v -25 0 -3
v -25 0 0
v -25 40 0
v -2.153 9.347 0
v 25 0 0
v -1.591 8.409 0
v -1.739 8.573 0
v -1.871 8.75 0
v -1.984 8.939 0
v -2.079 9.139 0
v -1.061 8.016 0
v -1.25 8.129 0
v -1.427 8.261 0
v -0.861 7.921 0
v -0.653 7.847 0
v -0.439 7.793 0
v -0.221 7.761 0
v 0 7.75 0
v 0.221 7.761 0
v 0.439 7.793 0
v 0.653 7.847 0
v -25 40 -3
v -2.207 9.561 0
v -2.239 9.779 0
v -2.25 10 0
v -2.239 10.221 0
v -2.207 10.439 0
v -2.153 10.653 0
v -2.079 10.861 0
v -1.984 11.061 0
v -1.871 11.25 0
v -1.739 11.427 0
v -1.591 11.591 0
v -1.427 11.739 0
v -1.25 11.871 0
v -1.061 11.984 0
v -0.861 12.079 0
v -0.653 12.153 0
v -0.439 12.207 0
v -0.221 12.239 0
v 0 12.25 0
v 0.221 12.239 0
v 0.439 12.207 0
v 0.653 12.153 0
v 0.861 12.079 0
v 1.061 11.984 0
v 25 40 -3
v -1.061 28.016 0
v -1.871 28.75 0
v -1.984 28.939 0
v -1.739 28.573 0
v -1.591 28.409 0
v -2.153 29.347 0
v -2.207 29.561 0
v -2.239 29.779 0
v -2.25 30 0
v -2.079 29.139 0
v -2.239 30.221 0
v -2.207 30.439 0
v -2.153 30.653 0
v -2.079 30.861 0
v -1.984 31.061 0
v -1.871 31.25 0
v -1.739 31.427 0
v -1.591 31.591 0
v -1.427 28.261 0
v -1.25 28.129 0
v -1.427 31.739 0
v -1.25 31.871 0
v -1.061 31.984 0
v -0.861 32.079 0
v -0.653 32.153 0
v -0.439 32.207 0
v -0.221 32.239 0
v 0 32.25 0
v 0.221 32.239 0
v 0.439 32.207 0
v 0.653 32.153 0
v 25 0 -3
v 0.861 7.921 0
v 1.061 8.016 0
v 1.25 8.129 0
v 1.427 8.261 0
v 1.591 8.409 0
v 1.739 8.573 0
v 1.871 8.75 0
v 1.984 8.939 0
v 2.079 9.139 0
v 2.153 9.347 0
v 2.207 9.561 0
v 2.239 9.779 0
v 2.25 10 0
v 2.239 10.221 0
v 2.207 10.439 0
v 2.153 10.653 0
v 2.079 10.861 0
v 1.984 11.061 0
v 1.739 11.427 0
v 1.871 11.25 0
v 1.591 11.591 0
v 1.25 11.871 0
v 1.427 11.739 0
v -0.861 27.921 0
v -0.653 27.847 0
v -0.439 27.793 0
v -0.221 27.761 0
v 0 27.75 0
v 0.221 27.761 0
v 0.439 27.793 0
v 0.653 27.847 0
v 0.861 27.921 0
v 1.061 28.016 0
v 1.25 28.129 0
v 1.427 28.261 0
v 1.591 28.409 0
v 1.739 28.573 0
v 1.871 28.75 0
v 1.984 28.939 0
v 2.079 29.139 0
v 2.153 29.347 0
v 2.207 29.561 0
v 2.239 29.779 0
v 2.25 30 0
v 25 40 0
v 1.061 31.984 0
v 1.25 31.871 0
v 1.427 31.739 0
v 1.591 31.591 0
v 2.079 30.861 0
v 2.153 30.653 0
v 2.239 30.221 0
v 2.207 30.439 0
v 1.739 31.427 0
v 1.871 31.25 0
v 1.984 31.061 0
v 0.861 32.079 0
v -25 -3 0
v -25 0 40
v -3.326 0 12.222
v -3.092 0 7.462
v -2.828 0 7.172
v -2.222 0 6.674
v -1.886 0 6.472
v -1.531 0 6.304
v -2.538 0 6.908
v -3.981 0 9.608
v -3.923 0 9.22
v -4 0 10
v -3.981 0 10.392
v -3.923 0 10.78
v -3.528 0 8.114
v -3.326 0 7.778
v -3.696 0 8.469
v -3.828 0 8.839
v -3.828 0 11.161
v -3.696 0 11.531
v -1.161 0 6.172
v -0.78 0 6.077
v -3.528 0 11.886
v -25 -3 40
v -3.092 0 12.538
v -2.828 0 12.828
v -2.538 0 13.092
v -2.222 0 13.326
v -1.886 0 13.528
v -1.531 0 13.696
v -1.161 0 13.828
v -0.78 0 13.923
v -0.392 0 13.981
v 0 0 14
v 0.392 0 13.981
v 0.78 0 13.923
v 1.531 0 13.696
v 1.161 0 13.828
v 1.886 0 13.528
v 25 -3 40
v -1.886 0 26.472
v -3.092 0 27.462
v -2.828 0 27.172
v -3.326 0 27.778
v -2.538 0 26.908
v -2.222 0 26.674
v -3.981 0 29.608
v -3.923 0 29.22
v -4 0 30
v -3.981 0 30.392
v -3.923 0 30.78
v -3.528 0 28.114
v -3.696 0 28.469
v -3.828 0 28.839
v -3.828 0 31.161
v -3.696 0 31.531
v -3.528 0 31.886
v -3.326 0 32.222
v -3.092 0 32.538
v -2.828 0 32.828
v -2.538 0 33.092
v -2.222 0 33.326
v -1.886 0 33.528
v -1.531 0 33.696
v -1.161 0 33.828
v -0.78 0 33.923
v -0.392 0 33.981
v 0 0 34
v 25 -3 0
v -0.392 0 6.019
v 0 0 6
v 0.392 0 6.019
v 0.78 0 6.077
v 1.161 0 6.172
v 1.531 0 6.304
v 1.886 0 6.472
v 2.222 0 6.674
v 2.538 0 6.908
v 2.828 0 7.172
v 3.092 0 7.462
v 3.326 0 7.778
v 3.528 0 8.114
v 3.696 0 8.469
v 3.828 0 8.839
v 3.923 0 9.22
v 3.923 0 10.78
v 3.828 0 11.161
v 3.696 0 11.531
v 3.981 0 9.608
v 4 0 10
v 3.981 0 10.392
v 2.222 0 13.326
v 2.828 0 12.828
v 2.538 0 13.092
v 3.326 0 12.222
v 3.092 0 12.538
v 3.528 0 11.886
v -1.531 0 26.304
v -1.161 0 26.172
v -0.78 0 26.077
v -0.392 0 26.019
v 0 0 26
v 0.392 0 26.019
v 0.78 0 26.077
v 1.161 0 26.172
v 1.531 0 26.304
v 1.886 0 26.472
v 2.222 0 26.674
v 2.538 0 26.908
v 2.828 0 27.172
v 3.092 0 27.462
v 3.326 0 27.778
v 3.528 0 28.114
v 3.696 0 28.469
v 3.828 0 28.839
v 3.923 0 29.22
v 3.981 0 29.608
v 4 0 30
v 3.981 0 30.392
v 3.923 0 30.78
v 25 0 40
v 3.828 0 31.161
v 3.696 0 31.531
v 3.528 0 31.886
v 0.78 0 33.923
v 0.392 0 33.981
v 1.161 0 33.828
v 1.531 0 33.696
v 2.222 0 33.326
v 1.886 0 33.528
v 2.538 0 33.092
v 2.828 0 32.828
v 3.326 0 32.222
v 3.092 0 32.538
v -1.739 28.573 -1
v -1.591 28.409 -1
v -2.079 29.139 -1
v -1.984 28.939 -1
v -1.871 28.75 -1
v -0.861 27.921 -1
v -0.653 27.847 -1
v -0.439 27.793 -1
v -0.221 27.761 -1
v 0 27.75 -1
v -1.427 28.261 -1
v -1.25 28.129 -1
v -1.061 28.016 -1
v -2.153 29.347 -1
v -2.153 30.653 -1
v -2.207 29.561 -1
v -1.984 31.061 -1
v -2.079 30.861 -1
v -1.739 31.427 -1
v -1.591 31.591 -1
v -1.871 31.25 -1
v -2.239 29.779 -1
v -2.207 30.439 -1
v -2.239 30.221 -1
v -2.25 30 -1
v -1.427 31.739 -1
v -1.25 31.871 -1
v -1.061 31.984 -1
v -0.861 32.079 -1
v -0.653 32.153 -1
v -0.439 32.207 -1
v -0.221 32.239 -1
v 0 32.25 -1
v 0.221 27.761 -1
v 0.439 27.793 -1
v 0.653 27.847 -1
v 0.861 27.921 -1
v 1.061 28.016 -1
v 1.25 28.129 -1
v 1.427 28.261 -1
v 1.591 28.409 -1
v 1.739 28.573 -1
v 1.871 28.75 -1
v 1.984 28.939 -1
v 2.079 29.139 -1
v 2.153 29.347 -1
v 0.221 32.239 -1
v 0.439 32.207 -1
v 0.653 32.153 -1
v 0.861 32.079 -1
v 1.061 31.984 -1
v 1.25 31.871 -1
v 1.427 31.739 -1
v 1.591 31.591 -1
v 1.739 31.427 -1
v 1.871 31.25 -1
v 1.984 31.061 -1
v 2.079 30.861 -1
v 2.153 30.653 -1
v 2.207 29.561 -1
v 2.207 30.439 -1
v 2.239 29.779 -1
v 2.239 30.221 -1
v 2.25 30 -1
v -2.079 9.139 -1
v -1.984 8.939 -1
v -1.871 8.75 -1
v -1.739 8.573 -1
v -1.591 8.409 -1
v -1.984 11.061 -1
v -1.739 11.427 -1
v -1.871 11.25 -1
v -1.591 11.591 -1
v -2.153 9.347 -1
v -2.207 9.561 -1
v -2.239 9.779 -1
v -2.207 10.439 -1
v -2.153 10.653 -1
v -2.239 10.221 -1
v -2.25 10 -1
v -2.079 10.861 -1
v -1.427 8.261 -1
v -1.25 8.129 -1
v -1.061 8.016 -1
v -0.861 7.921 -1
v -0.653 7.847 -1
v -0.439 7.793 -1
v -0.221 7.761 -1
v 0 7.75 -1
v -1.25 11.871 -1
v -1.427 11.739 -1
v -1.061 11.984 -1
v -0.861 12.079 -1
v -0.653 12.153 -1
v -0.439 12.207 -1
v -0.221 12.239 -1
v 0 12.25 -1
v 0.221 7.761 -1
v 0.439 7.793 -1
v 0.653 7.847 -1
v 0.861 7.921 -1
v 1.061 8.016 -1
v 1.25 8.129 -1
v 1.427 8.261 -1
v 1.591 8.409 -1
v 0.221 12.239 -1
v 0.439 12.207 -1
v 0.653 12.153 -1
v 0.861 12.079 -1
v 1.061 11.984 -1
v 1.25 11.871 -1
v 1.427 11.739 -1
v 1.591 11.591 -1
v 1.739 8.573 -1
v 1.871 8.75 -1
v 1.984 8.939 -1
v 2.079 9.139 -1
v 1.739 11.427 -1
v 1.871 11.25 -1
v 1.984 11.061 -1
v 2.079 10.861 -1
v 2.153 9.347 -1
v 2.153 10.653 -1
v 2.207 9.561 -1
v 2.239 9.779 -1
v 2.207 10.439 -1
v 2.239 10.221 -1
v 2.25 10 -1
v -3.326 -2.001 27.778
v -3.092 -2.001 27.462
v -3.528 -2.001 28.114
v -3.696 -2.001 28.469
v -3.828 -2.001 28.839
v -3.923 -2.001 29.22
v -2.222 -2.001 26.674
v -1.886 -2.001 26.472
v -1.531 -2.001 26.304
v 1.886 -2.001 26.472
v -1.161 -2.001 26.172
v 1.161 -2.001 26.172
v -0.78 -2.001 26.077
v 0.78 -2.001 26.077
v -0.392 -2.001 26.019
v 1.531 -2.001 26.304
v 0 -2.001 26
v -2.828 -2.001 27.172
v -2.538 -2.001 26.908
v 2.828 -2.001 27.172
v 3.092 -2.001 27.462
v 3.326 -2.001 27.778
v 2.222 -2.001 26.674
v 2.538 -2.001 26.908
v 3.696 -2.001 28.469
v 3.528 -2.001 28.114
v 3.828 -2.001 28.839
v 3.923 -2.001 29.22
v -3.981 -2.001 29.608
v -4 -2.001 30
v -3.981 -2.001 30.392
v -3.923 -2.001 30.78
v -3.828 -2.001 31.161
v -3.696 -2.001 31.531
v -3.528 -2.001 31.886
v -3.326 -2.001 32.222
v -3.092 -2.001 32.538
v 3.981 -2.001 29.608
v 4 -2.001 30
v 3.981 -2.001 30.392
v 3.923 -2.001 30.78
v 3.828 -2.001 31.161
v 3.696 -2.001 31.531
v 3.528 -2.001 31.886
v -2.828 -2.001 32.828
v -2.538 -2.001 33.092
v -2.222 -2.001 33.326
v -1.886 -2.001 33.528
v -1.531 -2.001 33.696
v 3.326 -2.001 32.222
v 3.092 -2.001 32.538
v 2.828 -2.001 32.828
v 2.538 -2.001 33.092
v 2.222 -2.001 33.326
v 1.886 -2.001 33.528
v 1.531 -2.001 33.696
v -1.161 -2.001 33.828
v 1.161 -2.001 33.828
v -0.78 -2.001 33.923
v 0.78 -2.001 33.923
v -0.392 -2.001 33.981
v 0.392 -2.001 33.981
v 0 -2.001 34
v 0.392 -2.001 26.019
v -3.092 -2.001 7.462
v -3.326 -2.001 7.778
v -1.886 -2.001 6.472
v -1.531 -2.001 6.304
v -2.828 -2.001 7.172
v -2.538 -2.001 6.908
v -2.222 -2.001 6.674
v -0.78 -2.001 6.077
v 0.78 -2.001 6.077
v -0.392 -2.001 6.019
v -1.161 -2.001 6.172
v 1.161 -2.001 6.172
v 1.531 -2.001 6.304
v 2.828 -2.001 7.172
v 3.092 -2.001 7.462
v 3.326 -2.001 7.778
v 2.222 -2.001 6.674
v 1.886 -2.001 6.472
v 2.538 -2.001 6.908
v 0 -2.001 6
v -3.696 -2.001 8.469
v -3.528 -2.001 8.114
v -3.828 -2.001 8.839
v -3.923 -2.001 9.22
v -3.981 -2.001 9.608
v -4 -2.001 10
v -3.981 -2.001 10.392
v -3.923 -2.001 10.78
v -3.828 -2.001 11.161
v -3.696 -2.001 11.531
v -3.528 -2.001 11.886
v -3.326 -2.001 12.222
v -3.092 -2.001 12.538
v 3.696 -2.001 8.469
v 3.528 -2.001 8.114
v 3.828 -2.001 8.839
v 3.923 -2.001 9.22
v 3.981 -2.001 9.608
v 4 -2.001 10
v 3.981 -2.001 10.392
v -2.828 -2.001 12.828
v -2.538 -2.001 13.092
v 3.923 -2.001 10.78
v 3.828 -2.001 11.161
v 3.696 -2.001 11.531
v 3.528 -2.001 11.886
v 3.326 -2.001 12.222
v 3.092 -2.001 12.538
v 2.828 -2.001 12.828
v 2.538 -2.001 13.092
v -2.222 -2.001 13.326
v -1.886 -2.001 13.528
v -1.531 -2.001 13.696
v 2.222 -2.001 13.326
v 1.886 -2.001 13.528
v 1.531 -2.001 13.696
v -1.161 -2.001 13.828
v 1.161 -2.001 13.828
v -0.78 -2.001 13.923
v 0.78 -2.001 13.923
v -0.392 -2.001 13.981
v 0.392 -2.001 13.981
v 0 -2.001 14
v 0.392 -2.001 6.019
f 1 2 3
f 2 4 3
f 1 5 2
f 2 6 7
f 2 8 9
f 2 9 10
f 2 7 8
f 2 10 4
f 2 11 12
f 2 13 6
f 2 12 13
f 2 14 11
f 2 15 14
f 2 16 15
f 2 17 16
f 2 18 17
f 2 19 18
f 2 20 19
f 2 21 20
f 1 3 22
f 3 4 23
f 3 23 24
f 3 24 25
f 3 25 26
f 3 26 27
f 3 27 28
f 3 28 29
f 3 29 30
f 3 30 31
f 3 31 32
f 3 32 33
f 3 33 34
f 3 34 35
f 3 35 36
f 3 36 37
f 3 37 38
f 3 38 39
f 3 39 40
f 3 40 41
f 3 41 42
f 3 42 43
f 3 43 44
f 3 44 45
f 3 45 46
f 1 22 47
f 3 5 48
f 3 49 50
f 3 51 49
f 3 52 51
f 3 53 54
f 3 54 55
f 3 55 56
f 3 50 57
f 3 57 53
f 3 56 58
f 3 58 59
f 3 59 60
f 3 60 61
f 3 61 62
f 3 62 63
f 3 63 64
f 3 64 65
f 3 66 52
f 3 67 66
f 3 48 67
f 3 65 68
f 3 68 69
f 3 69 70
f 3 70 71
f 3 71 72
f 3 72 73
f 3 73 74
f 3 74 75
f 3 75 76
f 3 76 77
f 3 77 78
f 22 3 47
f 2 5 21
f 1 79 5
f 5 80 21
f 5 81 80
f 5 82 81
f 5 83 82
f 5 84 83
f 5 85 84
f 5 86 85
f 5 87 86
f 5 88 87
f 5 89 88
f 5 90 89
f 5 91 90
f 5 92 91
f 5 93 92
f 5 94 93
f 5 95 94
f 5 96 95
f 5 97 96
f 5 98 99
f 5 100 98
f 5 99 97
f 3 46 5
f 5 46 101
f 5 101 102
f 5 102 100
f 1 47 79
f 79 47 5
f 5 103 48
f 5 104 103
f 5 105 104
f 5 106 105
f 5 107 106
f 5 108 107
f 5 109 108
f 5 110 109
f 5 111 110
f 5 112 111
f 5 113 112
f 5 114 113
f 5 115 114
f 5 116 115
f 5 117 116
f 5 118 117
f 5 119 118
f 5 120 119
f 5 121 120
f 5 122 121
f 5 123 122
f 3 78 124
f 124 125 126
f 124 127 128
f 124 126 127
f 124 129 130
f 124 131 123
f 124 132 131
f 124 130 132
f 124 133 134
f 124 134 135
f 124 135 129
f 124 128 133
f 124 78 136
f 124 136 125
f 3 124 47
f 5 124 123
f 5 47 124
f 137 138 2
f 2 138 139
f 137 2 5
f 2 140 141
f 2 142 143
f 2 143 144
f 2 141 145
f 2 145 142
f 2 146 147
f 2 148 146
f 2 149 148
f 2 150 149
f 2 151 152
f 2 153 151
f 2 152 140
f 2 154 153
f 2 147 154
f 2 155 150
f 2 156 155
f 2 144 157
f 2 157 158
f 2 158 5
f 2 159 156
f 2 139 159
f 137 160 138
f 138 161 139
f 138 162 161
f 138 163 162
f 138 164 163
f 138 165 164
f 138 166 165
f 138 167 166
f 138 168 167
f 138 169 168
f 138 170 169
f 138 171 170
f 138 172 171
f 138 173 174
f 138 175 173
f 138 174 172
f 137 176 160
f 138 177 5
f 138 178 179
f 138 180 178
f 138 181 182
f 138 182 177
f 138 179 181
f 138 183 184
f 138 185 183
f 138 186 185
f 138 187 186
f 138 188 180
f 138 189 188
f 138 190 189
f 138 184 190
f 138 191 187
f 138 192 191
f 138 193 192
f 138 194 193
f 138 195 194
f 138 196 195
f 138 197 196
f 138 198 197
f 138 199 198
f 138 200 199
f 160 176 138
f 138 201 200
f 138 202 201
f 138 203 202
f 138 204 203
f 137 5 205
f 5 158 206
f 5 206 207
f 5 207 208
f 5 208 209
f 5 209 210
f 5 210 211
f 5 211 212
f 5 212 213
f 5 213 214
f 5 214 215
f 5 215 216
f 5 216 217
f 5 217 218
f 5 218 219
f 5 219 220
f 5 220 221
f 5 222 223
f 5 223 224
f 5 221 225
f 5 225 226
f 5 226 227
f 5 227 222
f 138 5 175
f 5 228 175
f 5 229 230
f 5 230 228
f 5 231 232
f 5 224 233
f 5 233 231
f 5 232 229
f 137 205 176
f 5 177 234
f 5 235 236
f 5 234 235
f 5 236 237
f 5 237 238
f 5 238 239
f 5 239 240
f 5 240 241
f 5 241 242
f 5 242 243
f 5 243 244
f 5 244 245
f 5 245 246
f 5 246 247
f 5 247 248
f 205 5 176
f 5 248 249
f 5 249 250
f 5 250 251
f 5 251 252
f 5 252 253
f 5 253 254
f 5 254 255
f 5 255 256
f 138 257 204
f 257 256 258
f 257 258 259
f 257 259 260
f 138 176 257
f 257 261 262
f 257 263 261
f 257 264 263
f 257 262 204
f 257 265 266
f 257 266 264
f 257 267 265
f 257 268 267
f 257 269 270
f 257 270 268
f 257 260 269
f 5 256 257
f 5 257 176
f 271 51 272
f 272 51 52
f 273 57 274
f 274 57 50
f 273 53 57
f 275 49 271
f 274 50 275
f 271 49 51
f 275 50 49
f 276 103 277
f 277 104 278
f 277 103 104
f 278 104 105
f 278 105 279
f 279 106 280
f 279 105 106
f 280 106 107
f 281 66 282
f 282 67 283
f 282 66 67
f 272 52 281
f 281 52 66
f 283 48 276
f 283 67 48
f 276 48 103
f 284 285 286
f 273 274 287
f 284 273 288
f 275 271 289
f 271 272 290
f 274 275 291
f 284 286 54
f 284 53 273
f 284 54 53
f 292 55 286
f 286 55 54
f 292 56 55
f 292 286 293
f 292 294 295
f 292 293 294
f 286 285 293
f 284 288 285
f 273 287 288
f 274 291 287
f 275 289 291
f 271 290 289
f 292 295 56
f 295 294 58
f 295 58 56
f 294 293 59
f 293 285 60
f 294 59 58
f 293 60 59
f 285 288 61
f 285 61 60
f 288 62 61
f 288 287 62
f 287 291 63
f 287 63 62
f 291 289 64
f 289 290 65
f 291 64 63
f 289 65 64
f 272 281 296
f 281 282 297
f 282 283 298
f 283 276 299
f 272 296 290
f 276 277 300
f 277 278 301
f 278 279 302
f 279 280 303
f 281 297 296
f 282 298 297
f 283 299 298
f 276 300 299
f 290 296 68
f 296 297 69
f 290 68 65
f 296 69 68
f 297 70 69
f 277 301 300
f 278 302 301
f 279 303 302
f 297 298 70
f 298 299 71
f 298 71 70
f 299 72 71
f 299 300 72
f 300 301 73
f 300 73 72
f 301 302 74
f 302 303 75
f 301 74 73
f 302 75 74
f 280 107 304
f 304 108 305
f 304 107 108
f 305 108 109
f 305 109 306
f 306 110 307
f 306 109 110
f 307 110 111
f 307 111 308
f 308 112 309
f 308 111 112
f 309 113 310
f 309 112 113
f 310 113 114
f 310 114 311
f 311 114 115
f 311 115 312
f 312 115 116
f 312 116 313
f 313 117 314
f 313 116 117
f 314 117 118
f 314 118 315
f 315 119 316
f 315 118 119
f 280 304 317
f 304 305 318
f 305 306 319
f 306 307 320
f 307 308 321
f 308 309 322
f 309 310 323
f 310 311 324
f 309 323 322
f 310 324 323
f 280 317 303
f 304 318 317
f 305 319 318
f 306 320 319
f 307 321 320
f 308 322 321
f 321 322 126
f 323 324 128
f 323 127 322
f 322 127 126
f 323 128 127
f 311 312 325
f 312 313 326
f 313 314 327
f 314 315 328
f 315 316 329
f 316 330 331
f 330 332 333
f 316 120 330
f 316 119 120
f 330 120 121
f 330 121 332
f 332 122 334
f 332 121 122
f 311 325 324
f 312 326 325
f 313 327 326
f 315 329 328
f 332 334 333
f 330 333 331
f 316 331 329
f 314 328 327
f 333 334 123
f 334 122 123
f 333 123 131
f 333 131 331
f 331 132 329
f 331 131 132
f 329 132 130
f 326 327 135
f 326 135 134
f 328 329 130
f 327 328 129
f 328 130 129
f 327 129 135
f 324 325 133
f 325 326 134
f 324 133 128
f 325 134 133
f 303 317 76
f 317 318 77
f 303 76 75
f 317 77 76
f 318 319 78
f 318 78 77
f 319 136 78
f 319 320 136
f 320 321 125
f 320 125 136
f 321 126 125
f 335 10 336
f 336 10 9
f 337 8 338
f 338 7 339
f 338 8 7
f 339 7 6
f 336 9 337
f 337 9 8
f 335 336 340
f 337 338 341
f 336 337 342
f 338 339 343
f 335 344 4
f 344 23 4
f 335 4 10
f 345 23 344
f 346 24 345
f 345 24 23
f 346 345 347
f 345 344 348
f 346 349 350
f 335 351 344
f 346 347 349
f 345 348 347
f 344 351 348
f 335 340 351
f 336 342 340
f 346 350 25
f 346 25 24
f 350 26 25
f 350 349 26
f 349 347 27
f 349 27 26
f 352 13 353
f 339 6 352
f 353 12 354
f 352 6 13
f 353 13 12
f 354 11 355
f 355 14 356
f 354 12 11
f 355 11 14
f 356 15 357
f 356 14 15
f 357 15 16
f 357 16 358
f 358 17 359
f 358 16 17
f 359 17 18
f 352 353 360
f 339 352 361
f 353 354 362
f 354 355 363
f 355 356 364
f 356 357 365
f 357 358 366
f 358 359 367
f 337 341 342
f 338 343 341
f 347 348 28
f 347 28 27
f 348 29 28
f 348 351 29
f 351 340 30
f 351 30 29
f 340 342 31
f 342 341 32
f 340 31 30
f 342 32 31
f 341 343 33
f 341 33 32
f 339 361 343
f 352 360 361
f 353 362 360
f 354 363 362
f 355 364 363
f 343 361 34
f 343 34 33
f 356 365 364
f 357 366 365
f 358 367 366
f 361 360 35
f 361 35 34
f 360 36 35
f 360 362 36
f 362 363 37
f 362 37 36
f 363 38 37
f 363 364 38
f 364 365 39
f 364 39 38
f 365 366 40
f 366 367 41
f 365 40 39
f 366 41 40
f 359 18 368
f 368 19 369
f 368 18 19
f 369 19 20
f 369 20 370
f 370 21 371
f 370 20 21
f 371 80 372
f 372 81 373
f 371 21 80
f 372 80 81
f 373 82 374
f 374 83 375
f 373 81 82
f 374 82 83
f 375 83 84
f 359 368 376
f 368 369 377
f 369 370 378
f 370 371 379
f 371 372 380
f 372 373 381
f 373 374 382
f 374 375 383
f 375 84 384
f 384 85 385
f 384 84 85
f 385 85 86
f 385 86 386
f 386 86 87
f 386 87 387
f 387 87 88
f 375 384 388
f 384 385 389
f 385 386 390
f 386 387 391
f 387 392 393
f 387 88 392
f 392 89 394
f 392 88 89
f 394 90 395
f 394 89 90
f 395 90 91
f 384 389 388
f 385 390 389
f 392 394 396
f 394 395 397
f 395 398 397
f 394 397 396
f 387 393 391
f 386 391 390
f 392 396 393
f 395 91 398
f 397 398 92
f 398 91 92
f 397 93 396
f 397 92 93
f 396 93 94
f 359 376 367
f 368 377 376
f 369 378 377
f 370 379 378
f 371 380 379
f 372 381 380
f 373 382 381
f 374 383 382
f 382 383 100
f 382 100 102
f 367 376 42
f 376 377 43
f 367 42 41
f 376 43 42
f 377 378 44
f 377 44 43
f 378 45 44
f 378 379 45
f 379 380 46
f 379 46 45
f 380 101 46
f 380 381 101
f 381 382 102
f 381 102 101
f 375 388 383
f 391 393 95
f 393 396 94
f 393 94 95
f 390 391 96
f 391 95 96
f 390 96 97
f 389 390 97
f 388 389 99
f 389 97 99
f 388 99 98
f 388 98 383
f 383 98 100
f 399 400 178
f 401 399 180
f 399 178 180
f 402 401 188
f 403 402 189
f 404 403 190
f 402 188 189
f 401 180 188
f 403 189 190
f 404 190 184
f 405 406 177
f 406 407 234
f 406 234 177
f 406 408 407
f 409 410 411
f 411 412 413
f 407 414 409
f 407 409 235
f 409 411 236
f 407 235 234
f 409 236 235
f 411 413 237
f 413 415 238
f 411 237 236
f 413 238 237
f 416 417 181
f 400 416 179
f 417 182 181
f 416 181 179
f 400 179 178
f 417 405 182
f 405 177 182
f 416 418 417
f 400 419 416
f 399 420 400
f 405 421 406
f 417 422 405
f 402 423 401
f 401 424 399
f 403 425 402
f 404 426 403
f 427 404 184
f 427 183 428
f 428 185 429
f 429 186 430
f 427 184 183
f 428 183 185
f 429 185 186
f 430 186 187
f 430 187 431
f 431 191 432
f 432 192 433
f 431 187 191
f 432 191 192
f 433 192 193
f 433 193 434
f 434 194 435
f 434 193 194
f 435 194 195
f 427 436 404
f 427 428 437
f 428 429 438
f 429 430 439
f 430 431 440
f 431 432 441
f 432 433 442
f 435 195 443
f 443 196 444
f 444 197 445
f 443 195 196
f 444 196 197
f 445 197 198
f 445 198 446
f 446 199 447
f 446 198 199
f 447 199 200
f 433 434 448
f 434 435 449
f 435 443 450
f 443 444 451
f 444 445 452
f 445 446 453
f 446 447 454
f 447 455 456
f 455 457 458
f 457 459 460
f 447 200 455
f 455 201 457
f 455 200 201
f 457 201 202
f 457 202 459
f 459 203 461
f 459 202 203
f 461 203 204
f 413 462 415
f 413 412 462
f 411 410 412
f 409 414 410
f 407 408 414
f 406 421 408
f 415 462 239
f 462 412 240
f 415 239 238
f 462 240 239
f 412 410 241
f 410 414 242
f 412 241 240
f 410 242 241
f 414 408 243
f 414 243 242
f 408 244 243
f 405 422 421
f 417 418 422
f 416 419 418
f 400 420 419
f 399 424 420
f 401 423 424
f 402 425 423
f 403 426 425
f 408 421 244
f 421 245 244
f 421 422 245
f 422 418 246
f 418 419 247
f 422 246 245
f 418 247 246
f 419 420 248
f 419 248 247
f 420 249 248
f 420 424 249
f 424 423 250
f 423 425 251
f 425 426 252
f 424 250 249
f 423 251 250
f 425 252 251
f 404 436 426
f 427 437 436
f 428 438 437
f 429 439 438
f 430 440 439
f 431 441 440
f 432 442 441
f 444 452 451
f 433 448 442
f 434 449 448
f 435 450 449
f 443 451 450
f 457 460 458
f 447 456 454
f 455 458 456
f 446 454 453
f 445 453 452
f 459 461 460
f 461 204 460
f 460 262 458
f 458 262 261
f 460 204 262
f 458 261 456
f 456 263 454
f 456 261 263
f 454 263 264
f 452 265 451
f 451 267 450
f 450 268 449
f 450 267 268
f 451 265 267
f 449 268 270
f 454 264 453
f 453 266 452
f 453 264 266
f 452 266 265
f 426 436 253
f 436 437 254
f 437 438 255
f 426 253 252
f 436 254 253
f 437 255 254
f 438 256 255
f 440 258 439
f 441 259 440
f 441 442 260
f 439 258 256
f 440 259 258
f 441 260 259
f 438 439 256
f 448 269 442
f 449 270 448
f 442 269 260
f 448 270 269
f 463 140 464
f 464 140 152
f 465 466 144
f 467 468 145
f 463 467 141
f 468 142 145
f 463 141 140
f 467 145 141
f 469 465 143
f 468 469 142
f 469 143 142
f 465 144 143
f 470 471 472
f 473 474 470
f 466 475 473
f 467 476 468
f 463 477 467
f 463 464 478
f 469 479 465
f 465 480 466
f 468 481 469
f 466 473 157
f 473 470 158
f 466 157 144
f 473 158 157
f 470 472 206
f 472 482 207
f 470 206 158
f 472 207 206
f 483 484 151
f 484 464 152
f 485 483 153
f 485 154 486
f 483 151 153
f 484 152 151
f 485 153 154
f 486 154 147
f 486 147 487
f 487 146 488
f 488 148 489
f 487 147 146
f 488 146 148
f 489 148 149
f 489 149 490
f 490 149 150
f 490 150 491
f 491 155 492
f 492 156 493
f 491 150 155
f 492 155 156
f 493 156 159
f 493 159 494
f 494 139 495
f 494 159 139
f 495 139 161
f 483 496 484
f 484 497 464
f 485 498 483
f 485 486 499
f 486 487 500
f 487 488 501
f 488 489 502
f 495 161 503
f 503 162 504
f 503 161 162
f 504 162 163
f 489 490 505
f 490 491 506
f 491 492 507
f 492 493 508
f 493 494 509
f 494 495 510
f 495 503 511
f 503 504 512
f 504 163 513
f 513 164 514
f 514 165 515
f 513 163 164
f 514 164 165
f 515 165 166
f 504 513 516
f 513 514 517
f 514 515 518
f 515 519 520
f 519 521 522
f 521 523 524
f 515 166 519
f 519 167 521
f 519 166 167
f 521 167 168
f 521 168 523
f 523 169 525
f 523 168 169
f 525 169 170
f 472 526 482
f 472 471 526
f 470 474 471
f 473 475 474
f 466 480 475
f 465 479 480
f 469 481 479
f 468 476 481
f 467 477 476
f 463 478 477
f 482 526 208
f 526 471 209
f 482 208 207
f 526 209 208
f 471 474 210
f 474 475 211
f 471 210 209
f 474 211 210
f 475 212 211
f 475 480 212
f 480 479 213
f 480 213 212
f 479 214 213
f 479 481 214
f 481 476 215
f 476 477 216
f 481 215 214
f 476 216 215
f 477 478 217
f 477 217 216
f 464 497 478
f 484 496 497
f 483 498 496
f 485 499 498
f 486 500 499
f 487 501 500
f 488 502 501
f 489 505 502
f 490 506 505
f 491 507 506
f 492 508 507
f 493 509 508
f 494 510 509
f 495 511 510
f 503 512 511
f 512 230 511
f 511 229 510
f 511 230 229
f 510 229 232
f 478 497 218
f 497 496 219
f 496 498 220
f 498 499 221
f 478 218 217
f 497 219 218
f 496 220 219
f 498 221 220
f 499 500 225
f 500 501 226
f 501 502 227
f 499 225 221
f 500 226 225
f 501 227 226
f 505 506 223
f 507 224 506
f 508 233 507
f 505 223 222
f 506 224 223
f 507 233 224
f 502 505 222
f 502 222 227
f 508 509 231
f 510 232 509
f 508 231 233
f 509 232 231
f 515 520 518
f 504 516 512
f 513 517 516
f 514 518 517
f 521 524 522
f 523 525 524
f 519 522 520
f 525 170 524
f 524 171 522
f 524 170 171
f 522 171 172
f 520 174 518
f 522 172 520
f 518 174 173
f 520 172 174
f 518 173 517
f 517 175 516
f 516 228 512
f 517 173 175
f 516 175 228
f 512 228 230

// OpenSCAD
// L-bracket with countersunk holes
// Inner corner at origin
// Horizontal flange extends in +Y direction
// Vertical flange extends in +Z direction

// Parameters
width = 50;          // Width (X direction)
depth = 40;          // Horizontal flange depth (Y direction)
height = 40;         // Vertical flange height (Z direction)
thickness = 3;       // Plate thickness

// Hole parameters (M4 countersunk)
hole_dia = 4.5;      // Through hole diameter
csk_dia = 8;         // Countersink diameter
csk_depth = 2;       // Countersink depth
edge_offset = 10;    // Distance from edge to hole center

$fn = 64;

module countersunk_hole_z() {
    // Hole along Z axis, countersink on top (+Z side)
    union() {
        // Through hole
        translate([0, 0, -1])
            cylinder(d = hole_dia, h = thickness + 2);
        // Countersink (cylindrical counterbore for simplicity per spec)
        translate([0, 0, thickness - csk_depth])
            cylinder(d = csk_dia, h = csk_depth + 1);
    }
}

module countersunk_hole_y() {
    // Hole along Y axis, countersink on -Y side (outside of vertical flange)
    union() {
        // Through hole
        translate([0, -1, 0])
            rotate([-90, 0, 0])
                cylinder(d = hole_dia, h = thickness + 2);
        // Countersink on outside (-Y side)
        translate([0, -csk_depth - 0.001, 0])
            rotate([-90, 0, 0])
                cylinder(d = csk_dia, h = csk_depth + 1);
    }
}

difference() {
    union() {
        // Horizontal flange: extends in +Y, thickness in -Z
        translate([-width/2, 0, -thickness])
            cube([width, depth, thickness]);
        
        // Vertical flange: extends in +Z, thickness in -Y
        translate([-width/2, -thickness, 0])
            cube([width, thickness, height]);
    }
    
    // Holes in horizontal flange (along Z axis)
    // Center line is X = 0, holes offset symmetrically along X
    // Hole position in Y: edge_offset from far edge, and edge_offset from near edge (corner)
    // Two holes on horizontal flange centerline (Y direction)
    translate([0, edge_offset, 0])
        countersunk_hole_z();
    translate([0, depth - edge_offset, 0])
        countersunk_hole_z();
    
    // Holes in vertical flange (along Y axis)
    // Two holes on vertical flange centerline (Z direction)
    translate([0, 0, edge_offset])
        countersunk_hole_y();
    translate([0, 0, height - edge_offset])
        countersunk_hole_y();
}
